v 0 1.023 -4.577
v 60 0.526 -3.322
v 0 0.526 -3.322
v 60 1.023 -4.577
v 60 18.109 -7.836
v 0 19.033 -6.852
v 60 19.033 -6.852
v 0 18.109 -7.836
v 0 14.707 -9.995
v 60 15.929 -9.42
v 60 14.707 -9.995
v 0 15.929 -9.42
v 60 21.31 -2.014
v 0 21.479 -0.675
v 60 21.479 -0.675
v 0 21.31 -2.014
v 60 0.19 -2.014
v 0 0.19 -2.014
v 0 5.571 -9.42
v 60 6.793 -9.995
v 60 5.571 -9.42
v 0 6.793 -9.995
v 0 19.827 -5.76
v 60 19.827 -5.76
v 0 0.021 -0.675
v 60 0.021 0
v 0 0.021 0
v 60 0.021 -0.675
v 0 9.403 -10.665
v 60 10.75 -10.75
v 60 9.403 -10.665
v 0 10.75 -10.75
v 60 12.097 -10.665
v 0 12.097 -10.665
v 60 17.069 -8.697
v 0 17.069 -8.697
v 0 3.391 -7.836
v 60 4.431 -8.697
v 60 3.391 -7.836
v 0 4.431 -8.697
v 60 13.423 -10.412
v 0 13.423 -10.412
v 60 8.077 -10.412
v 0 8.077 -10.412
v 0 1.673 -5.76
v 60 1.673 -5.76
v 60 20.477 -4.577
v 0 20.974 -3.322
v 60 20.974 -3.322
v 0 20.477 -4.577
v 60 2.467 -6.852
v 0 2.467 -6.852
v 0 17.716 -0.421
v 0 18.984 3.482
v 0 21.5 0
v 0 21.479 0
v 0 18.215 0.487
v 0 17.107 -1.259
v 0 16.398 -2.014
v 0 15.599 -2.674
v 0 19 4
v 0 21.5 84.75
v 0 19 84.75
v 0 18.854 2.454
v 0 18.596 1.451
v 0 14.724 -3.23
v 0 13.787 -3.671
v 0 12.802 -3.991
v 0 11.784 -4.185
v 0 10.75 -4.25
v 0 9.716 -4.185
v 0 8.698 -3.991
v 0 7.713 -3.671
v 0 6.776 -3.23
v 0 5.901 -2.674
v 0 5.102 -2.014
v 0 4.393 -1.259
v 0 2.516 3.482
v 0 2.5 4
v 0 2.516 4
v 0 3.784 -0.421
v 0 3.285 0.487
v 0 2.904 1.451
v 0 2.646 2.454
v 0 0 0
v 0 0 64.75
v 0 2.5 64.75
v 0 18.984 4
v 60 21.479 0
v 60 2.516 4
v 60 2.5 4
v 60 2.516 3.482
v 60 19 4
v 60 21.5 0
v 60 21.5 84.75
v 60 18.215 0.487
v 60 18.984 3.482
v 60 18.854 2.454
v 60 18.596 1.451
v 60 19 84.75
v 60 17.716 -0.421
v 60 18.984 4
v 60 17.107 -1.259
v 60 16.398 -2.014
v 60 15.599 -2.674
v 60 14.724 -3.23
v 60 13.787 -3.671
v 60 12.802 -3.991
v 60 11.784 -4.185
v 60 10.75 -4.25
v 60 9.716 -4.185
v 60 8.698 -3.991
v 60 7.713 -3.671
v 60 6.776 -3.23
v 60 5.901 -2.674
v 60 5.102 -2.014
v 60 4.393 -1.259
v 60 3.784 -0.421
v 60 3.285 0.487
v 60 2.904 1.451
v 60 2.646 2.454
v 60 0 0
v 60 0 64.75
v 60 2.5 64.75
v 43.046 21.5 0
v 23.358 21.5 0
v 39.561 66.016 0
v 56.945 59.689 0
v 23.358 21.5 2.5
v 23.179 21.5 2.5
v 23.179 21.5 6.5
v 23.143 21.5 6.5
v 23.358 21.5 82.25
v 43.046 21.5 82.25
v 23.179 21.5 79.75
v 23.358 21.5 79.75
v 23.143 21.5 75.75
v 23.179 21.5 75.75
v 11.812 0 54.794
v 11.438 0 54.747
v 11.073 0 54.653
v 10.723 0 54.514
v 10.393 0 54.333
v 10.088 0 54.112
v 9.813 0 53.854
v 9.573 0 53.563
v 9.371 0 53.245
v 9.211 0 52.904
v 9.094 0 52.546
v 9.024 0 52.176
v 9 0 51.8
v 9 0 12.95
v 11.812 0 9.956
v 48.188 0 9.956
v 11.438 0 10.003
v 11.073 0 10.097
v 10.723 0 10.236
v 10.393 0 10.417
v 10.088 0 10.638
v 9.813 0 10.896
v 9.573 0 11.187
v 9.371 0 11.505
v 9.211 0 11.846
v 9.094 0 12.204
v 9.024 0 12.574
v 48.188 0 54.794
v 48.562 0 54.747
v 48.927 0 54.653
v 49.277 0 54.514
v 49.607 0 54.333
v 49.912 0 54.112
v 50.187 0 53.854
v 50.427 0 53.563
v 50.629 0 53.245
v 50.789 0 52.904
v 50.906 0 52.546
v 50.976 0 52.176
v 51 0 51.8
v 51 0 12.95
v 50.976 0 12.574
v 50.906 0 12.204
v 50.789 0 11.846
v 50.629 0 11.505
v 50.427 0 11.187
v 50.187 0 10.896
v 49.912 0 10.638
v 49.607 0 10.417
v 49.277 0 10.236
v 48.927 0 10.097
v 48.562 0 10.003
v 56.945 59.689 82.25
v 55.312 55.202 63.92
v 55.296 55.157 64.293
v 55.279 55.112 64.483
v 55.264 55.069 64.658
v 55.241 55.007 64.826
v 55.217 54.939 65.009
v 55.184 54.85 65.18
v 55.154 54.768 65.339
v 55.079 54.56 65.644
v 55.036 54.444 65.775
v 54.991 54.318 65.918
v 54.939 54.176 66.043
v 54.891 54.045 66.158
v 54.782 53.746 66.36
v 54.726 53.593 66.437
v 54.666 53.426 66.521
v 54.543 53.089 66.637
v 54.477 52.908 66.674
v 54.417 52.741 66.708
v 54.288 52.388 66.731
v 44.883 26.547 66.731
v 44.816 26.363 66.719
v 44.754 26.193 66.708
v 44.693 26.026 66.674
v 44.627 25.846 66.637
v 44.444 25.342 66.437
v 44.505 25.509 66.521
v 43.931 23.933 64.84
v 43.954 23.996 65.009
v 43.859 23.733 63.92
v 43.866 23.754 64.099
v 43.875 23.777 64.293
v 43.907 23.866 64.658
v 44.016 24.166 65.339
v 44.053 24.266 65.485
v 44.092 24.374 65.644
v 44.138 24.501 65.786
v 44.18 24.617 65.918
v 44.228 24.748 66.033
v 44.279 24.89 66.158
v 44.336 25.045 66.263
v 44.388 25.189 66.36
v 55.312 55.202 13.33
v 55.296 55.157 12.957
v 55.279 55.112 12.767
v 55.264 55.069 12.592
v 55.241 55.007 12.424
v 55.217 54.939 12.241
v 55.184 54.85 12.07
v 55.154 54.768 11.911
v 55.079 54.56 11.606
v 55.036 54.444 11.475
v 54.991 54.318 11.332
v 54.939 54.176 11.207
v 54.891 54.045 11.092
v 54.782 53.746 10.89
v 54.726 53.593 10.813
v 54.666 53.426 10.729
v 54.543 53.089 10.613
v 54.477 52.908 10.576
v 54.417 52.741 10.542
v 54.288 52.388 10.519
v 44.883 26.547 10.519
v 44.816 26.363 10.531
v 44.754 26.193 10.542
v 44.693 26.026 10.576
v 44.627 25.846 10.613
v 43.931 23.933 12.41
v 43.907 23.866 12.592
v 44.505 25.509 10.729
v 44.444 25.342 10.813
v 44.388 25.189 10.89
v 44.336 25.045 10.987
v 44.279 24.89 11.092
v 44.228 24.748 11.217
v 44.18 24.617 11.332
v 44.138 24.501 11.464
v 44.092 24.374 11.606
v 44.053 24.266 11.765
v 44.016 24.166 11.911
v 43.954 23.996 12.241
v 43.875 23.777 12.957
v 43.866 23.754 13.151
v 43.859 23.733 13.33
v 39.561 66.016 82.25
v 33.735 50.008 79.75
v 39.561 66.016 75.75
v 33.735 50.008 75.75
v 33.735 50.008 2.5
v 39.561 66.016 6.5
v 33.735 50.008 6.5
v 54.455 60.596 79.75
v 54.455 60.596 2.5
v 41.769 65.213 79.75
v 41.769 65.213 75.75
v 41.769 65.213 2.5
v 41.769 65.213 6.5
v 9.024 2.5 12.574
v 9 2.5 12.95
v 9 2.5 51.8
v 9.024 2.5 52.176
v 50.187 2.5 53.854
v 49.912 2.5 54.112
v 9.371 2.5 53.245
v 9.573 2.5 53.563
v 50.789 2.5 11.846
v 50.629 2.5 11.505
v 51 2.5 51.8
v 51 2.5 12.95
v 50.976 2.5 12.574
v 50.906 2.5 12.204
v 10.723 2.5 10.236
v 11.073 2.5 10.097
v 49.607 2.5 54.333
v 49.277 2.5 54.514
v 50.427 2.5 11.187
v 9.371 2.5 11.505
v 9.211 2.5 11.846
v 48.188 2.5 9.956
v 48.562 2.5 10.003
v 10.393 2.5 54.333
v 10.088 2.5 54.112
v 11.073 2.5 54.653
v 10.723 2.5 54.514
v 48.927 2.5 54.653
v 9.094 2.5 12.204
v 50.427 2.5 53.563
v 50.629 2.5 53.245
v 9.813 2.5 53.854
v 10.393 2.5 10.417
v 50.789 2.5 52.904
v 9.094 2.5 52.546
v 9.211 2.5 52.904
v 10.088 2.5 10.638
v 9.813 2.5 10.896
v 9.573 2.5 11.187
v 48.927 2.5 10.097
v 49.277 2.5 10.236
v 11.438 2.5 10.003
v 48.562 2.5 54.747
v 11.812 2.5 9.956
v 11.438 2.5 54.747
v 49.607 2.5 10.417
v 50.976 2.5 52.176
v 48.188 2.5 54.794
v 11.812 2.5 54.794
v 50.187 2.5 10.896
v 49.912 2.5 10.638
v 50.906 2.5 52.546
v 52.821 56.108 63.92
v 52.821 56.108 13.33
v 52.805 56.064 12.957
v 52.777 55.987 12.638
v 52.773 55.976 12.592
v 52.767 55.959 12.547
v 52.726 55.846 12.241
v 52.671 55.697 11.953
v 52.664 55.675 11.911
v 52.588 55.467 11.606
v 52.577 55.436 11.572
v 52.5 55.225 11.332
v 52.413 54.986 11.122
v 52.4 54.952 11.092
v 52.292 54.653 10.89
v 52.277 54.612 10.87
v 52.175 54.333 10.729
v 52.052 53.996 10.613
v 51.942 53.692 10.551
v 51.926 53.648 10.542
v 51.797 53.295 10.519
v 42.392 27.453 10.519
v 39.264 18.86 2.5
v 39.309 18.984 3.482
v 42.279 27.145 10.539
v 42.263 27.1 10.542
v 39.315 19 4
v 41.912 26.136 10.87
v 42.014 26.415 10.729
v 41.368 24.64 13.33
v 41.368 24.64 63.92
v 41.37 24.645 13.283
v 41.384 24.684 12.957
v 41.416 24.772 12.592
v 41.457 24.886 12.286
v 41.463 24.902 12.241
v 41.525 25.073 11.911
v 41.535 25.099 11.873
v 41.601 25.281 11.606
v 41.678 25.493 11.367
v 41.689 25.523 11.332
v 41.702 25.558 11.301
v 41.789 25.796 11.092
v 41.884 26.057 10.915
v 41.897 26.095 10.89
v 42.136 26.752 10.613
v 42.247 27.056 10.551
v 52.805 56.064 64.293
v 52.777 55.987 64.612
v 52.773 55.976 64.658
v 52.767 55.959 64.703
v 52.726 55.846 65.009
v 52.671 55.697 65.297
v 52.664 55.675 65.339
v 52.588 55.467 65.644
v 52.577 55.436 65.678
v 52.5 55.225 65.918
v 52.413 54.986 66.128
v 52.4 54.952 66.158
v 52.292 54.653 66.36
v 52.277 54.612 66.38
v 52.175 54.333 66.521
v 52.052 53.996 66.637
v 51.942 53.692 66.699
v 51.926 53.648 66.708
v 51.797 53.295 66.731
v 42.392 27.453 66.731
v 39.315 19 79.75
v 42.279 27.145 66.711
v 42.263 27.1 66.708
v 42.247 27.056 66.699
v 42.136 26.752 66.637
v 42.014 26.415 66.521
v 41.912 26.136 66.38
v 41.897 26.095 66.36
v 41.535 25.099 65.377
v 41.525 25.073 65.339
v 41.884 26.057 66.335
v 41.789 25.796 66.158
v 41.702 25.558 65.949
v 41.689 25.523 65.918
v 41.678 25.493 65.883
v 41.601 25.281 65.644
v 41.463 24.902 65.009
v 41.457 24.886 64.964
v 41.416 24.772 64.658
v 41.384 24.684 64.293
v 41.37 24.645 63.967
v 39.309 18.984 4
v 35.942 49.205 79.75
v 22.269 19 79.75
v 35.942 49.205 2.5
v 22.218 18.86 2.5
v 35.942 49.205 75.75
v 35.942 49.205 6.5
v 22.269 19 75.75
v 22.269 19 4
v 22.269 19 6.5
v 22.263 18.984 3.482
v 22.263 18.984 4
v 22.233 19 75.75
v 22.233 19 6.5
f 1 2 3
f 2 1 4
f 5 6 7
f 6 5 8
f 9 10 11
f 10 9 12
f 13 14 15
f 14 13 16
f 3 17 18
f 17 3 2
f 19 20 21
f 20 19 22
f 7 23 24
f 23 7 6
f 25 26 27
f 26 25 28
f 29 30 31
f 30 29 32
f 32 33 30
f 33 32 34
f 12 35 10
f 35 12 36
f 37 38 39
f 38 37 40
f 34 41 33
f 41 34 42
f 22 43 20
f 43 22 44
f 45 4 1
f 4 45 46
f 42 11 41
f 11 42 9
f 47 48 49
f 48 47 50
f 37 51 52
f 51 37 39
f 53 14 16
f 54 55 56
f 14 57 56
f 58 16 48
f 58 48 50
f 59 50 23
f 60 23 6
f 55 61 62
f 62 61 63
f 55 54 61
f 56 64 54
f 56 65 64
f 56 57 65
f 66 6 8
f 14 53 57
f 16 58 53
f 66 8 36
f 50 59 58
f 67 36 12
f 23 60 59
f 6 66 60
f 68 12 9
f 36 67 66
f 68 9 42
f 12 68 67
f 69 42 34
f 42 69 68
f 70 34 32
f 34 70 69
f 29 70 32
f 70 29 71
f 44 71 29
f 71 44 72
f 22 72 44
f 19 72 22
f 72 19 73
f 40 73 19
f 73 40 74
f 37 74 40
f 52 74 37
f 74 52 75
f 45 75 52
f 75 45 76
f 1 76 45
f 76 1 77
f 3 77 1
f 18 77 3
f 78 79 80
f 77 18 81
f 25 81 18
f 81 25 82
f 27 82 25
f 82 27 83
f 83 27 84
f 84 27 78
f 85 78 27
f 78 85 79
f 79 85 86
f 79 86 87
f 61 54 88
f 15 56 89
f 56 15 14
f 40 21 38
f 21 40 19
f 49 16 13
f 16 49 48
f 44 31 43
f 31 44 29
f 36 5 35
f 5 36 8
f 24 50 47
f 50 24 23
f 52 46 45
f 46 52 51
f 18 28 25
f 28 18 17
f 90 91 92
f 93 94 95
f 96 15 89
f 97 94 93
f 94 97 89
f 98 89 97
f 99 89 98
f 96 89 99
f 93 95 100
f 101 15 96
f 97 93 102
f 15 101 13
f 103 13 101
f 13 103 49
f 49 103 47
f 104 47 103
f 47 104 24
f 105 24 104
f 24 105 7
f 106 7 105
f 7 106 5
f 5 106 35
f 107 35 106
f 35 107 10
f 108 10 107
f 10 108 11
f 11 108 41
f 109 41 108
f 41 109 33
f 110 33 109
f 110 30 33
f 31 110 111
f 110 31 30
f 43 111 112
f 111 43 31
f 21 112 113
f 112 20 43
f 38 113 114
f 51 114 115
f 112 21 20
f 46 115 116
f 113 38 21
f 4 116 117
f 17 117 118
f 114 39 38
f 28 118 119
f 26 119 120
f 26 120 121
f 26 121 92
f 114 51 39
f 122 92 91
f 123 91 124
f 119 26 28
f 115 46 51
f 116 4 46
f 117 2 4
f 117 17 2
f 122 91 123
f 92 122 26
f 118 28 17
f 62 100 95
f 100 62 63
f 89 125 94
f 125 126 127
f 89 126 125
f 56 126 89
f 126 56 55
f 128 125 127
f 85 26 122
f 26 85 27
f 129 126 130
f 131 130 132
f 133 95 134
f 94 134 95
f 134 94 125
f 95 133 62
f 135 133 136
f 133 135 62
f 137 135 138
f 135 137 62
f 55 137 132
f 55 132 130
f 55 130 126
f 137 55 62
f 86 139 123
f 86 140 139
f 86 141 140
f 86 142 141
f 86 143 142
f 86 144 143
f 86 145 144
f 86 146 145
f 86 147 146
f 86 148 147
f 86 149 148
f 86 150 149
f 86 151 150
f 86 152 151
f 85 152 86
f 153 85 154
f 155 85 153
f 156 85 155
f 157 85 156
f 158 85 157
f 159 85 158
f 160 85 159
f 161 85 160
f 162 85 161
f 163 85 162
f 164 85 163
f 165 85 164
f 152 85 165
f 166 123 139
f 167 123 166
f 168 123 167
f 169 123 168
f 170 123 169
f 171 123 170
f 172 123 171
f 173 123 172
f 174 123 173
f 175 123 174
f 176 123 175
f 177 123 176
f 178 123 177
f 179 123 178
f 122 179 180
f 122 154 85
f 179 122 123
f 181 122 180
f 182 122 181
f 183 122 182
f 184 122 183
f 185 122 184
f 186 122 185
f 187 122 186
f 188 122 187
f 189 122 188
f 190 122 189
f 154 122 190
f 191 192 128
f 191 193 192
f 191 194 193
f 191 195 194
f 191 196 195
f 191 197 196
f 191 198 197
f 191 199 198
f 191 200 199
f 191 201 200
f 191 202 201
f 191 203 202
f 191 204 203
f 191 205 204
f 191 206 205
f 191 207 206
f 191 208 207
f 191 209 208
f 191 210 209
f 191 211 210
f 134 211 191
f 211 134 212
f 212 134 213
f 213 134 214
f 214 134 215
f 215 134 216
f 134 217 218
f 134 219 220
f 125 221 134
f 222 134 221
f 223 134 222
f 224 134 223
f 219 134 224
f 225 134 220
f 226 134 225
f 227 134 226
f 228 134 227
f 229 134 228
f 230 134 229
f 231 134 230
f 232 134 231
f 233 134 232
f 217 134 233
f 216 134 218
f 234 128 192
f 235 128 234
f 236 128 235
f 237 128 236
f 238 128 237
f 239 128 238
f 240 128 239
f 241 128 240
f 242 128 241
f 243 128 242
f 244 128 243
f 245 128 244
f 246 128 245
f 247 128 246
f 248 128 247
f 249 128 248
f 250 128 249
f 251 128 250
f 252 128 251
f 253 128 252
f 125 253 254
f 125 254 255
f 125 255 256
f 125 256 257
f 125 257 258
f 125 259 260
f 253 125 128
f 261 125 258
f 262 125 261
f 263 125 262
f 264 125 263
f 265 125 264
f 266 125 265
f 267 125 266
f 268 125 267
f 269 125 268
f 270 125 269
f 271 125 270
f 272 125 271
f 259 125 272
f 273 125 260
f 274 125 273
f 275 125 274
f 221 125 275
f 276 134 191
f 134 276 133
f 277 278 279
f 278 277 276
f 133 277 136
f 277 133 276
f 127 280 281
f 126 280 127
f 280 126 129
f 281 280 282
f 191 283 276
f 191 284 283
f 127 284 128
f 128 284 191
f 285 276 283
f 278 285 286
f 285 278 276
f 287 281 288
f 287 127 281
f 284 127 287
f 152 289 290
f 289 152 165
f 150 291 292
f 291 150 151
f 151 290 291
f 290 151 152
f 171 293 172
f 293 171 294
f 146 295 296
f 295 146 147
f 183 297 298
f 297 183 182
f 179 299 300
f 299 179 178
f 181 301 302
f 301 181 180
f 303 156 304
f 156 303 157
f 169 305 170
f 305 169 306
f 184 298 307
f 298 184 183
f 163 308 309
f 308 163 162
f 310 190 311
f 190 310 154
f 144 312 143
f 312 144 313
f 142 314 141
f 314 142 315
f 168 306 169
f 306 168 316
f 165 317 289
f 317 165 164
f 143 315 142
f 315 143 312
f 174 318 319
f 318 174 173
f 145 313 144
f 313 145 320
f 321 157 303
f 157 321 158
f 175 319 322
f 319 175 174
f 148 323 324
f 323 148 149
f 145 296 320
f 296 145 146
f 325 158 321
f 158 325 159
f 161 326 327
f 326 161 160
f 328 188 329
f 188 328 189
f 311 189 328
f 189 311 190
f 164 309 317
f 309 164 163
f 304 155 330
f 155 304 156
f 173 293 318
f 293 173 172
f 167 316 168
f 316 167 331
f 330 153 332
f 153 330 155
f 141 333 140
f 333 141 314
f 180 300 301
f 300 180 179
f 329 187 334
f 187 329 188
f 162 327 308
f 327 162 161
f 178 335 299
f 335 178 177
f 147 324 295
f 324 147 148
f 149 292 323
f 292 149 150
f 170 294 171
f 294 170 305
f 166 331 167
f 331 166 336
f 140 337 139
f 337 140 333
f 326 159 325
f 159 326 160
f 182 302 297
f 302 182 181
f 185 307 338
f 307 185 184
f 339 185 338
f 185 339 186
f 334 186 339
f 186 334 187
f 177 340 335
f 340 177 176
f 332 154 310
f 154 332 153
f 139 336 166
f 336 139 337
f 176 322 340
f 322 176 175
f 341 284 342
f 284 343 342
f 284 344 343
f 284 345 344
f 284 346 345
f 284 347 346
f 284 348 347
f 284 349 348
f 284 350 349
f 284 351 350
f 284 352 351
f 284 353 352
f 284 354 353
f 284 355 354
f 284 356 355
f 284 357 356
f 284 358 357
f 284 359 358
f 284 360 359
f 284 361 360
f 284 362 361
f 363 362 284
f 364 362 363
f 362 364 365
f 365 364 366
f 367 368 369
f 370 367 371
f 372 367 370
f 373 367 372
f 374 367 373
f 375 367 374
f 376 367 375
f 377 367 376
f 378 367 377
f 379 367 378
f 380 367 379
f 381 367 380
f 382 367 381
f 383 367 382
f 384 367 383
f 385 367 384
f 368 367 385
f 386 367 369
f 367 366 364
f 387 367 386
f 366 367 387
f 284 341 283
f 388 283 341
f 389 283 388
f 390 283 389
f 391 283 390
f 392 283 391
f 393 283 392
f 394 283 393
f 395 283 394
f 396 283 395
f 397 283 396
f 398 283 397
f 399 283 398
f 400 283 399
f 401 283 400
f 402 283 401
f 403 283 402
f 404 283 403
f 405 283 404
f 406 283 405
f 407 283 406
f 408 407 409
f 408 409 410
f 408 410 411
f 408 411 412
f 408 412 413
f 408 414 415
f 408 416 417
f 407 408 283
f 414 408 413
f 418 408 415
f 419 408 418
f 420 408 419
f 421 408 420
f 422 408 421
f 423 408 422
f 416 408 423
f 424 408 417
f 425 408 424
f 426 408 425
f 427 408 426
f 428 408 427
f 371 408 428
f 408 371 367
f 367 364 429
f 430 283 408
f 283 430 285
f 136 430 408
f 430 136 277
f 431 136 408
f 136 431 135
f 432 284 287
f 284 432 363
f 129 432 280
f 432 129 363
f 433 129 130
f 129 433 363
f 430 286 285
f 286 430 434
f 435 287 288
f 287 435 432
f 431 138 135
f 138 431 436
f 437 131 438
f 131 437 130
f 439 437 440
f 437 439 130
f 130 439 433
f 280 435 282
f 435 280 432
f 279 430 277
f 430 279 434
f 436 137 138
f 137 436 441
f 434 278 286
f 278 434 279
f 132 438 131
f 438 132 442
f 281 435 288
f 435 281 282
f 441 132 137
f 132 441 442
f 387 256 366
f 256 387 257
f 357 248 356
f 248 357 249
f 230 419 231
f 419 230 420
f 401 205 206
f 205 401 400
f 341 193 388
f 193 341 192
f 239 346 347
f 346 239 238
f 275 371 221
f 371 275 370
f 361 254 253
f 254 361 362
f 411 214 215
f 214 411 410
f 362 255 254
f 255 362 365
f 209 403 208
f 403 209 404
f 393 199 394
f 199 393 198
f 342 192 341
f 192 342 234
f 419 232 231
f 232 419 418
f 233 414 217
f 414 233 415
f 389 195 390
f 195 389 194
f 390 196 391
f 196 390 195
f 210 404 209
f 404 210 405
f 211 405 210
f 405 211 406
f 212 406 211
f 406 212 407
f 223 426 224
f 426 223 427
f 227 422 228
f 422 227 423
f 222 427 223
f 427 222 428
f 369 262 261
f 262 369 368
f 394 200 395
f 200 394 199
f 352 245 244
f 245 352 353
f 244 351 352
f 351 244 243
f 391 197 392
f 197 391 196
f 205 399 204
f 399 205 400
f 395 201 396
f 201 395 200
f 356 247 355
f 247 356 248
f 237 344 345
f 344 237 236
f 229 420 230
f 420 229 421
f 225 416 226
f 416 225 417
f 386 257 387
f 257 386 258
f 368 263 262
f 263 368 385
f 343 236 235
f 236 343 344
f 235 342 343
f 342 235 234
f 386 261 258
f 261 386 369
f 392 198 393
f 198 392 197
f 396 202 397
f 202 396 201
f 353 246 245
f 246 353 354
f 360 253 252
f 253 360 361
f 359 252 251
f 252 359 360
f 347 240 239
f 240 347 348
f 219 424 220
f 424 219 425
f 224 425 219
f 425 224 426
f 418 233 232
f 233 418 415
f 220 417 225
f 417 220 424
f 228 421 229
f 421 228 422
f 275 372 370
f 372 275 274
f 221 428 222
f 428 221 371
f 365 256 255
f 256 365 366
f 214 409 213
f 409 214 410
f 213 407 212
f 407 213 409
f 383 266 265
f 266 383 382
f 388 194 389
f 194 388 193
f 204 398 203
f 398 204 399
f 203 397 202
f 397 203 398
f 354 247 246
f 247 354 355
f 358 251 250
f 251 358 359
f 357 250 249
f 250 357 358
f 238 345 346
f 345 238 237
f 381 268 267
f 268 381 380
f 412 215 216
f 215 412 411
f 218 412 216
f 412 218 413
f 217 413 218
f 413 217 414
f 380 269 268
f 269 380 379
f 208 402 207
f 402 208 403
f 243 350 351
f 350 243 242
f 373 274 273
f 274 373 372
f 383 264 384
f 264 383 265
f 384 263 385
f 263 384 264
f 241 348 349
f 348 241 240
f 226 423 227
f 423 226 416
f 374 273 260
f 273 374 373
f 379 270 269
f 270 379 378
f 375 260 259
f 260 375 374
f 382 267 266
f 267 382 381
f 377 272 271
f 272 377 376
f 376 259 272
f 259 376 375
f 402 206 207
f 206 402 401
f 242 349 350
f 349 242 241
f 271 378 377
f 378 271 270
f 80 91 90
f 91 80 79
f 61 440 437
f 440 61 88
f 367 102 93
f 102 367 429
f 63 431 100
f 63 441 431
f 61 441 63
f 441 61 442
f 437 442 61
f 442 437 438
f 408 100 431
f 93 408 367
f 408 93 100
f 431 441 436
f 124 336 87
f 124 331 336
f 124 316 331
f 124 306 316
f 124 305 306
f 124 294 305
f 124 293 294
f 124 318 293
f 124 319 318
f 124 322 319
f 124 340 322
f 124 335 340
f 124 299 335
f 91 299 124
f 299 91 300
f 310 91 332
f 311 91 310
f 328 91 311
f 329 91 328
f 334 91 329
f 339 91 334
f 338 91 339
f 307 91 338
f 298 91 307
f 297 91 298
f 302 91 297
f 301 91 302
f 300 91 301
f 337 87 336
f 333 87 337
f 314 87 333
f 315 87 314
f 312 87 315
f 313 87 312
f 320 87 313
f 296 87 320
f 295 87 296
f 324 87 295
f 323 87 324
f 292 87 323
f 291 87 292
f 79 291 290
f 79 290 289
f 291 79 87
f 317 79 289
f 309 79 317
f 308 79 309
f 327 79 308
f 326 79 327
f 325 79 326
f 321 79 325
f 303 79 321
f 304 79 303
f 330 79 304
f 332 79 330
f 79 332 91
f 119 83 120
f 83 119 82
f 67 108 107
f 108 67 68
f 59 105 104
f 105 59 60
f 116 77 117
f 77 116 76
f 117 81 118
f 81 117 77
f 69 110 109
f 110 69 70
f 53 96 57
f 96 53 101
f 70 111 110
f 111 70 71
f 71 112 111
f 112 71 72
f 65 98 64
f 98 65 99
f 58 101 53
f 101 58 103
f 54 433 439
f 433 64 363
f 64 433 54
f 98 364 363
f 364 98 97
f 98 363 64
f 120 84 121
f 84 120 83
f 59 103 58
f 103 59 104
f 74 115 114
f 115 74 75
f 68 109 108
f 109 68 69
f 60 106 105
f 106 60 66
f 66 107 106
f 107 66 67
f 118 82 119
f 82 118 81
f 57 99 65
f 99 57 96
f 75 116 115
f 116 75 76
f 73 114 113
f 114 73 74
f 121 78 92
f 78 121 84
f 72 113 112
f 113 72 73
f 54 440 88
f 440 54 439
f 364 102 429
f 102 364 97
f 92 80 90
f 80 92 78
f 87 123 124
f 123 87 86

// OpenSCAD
/*
 * A bracket to mount a phone mount in the van on
 */

$fn=50;

slot_height = 77.25;
slot_width = 13.5;

wall_thickness = 2.5;
bracket_width = 60;
bracket_height = slot_height + (3 * wall_thickness);
bracket_thickness = 21.5;
bracket_leg_width = 10;
bracket_top_height = 4;
bracket_back_leg_shorten = 20;
bracket_back_height = bracket_height - bracket_back_leg_shorten;

cutout_width = bracket_width + 1; 
cutout_height = bracket_height - bracket_top_height;
cutout_thickness = bracket_thickness - 2  * wall_thickness;
cutout_cylinder_diameter = bracket_thickness - 2 * wall_thickness;
cutout_y_offset = (bracket_thickness - cutout_thickness)/2;

rounding_sphere_diameter = 6;

slot_depth = 55;

module phone_box_back_cutout()
{
   cutout_height = slot_height*0.65;

   translate([bracket_width-slot_width-wall_thickness*2, slot_depth/1.98, cutout_height + (slot_height - cutout_height)/2])
     rotate([0, 90, -20])
        minkowski() {
           $fn=50;
           cube([cutout_height, slot_depth/2, wall_thickness*3]);
	   sphere(d=rounding_sphere_diameter);
        }
}

module phone_box_cutout_too()
{
   lip_height=4;
   translate([(bracket_width-slot_width)/2-wall_thickness*0.7, bracket_thickness* 0.79, wall_thickness+lip_height])
     rotate([0, 0, -20])
        cube([wall_thickness*1.3, slot_depth, slot_height-2*lip_height]);
}

module phone_box_cutout()
{
   translate([(bracket_width-slot_width)/2-wall_thickness, bracket_thickness/1.45, wall_thickness])
     rotate([0, 0, -20])
        cube([wall_thickness*1.2, slot_depth+wall_thickness-20, slot_height]);
}

module phone_box()
{
   translate([(bracket_width-slot_width)/2-wall_thickness, bracket_thickness/1.5, 0])
     rotate([0, 0, -20])
        cube([slot_width+2*wall_thickness, slot_depth, slot_height+2*wall_thickness]);
}

module phone_slot()
{
   translate([(bracket_width-slot_width)/2, bracket_thickness/1.5, wall_thickness])
     rotate([0, 0, -20])
        cube([slot_width, slot_depth+10, slot_height]);
}

module bracket_back_cutout() {
   cutout_height = bracket_back_height * 0.6;
   cutout_width = bracket_width * 0.6;

   minkowski() {
      $fn=50;
      translate([(bracket_width - cutout_width)/2, 
                0, 
	        (bracket_back_height - cutout_height)/2])
         cube([cutout_width, wall_thickness, cutout_height]);
      sphere(d=rounding_sphere_diameter);
   }
}

module cube_with_rounded_top()
{
   union()
   {
      rotate ([0, 90, 0])
         translate([0, bracket_thickness/2, 0]) 
            cylinder (h=bracket_width, d=bracket_thickness);
      cube([bracket_width, bracket_thickness, bracket_height]);
      phone_box();
   }
}

difference() 
{
   difference()
   {
      cube_with_rounded_top();
      bracket_back_cutout();
      phone_slot();
      phone_box_cutout();
      phone_box_cutout_too();
      phone_box_back_cutout();
   }
      
   union() /* cutout with rounded top */
      translate([0, cutout_y_offset, bracket_top_height]) 
         cube([cutout_width, cutout_thickness, cutout_height]);
      translate([0, bracket_thickness/2, bracket_top_height])
         rotate ([0, 90, 0]) 
            cylinder (h=bracket_width, d=cutout_cylinder_diameter);

   /* shorten back */
   translate([0, 0, bracket_height - bracket_back_leg_shorten])
      cube([bracket_width, wall_thickness, bracket_back_leg_shorten]);

}
